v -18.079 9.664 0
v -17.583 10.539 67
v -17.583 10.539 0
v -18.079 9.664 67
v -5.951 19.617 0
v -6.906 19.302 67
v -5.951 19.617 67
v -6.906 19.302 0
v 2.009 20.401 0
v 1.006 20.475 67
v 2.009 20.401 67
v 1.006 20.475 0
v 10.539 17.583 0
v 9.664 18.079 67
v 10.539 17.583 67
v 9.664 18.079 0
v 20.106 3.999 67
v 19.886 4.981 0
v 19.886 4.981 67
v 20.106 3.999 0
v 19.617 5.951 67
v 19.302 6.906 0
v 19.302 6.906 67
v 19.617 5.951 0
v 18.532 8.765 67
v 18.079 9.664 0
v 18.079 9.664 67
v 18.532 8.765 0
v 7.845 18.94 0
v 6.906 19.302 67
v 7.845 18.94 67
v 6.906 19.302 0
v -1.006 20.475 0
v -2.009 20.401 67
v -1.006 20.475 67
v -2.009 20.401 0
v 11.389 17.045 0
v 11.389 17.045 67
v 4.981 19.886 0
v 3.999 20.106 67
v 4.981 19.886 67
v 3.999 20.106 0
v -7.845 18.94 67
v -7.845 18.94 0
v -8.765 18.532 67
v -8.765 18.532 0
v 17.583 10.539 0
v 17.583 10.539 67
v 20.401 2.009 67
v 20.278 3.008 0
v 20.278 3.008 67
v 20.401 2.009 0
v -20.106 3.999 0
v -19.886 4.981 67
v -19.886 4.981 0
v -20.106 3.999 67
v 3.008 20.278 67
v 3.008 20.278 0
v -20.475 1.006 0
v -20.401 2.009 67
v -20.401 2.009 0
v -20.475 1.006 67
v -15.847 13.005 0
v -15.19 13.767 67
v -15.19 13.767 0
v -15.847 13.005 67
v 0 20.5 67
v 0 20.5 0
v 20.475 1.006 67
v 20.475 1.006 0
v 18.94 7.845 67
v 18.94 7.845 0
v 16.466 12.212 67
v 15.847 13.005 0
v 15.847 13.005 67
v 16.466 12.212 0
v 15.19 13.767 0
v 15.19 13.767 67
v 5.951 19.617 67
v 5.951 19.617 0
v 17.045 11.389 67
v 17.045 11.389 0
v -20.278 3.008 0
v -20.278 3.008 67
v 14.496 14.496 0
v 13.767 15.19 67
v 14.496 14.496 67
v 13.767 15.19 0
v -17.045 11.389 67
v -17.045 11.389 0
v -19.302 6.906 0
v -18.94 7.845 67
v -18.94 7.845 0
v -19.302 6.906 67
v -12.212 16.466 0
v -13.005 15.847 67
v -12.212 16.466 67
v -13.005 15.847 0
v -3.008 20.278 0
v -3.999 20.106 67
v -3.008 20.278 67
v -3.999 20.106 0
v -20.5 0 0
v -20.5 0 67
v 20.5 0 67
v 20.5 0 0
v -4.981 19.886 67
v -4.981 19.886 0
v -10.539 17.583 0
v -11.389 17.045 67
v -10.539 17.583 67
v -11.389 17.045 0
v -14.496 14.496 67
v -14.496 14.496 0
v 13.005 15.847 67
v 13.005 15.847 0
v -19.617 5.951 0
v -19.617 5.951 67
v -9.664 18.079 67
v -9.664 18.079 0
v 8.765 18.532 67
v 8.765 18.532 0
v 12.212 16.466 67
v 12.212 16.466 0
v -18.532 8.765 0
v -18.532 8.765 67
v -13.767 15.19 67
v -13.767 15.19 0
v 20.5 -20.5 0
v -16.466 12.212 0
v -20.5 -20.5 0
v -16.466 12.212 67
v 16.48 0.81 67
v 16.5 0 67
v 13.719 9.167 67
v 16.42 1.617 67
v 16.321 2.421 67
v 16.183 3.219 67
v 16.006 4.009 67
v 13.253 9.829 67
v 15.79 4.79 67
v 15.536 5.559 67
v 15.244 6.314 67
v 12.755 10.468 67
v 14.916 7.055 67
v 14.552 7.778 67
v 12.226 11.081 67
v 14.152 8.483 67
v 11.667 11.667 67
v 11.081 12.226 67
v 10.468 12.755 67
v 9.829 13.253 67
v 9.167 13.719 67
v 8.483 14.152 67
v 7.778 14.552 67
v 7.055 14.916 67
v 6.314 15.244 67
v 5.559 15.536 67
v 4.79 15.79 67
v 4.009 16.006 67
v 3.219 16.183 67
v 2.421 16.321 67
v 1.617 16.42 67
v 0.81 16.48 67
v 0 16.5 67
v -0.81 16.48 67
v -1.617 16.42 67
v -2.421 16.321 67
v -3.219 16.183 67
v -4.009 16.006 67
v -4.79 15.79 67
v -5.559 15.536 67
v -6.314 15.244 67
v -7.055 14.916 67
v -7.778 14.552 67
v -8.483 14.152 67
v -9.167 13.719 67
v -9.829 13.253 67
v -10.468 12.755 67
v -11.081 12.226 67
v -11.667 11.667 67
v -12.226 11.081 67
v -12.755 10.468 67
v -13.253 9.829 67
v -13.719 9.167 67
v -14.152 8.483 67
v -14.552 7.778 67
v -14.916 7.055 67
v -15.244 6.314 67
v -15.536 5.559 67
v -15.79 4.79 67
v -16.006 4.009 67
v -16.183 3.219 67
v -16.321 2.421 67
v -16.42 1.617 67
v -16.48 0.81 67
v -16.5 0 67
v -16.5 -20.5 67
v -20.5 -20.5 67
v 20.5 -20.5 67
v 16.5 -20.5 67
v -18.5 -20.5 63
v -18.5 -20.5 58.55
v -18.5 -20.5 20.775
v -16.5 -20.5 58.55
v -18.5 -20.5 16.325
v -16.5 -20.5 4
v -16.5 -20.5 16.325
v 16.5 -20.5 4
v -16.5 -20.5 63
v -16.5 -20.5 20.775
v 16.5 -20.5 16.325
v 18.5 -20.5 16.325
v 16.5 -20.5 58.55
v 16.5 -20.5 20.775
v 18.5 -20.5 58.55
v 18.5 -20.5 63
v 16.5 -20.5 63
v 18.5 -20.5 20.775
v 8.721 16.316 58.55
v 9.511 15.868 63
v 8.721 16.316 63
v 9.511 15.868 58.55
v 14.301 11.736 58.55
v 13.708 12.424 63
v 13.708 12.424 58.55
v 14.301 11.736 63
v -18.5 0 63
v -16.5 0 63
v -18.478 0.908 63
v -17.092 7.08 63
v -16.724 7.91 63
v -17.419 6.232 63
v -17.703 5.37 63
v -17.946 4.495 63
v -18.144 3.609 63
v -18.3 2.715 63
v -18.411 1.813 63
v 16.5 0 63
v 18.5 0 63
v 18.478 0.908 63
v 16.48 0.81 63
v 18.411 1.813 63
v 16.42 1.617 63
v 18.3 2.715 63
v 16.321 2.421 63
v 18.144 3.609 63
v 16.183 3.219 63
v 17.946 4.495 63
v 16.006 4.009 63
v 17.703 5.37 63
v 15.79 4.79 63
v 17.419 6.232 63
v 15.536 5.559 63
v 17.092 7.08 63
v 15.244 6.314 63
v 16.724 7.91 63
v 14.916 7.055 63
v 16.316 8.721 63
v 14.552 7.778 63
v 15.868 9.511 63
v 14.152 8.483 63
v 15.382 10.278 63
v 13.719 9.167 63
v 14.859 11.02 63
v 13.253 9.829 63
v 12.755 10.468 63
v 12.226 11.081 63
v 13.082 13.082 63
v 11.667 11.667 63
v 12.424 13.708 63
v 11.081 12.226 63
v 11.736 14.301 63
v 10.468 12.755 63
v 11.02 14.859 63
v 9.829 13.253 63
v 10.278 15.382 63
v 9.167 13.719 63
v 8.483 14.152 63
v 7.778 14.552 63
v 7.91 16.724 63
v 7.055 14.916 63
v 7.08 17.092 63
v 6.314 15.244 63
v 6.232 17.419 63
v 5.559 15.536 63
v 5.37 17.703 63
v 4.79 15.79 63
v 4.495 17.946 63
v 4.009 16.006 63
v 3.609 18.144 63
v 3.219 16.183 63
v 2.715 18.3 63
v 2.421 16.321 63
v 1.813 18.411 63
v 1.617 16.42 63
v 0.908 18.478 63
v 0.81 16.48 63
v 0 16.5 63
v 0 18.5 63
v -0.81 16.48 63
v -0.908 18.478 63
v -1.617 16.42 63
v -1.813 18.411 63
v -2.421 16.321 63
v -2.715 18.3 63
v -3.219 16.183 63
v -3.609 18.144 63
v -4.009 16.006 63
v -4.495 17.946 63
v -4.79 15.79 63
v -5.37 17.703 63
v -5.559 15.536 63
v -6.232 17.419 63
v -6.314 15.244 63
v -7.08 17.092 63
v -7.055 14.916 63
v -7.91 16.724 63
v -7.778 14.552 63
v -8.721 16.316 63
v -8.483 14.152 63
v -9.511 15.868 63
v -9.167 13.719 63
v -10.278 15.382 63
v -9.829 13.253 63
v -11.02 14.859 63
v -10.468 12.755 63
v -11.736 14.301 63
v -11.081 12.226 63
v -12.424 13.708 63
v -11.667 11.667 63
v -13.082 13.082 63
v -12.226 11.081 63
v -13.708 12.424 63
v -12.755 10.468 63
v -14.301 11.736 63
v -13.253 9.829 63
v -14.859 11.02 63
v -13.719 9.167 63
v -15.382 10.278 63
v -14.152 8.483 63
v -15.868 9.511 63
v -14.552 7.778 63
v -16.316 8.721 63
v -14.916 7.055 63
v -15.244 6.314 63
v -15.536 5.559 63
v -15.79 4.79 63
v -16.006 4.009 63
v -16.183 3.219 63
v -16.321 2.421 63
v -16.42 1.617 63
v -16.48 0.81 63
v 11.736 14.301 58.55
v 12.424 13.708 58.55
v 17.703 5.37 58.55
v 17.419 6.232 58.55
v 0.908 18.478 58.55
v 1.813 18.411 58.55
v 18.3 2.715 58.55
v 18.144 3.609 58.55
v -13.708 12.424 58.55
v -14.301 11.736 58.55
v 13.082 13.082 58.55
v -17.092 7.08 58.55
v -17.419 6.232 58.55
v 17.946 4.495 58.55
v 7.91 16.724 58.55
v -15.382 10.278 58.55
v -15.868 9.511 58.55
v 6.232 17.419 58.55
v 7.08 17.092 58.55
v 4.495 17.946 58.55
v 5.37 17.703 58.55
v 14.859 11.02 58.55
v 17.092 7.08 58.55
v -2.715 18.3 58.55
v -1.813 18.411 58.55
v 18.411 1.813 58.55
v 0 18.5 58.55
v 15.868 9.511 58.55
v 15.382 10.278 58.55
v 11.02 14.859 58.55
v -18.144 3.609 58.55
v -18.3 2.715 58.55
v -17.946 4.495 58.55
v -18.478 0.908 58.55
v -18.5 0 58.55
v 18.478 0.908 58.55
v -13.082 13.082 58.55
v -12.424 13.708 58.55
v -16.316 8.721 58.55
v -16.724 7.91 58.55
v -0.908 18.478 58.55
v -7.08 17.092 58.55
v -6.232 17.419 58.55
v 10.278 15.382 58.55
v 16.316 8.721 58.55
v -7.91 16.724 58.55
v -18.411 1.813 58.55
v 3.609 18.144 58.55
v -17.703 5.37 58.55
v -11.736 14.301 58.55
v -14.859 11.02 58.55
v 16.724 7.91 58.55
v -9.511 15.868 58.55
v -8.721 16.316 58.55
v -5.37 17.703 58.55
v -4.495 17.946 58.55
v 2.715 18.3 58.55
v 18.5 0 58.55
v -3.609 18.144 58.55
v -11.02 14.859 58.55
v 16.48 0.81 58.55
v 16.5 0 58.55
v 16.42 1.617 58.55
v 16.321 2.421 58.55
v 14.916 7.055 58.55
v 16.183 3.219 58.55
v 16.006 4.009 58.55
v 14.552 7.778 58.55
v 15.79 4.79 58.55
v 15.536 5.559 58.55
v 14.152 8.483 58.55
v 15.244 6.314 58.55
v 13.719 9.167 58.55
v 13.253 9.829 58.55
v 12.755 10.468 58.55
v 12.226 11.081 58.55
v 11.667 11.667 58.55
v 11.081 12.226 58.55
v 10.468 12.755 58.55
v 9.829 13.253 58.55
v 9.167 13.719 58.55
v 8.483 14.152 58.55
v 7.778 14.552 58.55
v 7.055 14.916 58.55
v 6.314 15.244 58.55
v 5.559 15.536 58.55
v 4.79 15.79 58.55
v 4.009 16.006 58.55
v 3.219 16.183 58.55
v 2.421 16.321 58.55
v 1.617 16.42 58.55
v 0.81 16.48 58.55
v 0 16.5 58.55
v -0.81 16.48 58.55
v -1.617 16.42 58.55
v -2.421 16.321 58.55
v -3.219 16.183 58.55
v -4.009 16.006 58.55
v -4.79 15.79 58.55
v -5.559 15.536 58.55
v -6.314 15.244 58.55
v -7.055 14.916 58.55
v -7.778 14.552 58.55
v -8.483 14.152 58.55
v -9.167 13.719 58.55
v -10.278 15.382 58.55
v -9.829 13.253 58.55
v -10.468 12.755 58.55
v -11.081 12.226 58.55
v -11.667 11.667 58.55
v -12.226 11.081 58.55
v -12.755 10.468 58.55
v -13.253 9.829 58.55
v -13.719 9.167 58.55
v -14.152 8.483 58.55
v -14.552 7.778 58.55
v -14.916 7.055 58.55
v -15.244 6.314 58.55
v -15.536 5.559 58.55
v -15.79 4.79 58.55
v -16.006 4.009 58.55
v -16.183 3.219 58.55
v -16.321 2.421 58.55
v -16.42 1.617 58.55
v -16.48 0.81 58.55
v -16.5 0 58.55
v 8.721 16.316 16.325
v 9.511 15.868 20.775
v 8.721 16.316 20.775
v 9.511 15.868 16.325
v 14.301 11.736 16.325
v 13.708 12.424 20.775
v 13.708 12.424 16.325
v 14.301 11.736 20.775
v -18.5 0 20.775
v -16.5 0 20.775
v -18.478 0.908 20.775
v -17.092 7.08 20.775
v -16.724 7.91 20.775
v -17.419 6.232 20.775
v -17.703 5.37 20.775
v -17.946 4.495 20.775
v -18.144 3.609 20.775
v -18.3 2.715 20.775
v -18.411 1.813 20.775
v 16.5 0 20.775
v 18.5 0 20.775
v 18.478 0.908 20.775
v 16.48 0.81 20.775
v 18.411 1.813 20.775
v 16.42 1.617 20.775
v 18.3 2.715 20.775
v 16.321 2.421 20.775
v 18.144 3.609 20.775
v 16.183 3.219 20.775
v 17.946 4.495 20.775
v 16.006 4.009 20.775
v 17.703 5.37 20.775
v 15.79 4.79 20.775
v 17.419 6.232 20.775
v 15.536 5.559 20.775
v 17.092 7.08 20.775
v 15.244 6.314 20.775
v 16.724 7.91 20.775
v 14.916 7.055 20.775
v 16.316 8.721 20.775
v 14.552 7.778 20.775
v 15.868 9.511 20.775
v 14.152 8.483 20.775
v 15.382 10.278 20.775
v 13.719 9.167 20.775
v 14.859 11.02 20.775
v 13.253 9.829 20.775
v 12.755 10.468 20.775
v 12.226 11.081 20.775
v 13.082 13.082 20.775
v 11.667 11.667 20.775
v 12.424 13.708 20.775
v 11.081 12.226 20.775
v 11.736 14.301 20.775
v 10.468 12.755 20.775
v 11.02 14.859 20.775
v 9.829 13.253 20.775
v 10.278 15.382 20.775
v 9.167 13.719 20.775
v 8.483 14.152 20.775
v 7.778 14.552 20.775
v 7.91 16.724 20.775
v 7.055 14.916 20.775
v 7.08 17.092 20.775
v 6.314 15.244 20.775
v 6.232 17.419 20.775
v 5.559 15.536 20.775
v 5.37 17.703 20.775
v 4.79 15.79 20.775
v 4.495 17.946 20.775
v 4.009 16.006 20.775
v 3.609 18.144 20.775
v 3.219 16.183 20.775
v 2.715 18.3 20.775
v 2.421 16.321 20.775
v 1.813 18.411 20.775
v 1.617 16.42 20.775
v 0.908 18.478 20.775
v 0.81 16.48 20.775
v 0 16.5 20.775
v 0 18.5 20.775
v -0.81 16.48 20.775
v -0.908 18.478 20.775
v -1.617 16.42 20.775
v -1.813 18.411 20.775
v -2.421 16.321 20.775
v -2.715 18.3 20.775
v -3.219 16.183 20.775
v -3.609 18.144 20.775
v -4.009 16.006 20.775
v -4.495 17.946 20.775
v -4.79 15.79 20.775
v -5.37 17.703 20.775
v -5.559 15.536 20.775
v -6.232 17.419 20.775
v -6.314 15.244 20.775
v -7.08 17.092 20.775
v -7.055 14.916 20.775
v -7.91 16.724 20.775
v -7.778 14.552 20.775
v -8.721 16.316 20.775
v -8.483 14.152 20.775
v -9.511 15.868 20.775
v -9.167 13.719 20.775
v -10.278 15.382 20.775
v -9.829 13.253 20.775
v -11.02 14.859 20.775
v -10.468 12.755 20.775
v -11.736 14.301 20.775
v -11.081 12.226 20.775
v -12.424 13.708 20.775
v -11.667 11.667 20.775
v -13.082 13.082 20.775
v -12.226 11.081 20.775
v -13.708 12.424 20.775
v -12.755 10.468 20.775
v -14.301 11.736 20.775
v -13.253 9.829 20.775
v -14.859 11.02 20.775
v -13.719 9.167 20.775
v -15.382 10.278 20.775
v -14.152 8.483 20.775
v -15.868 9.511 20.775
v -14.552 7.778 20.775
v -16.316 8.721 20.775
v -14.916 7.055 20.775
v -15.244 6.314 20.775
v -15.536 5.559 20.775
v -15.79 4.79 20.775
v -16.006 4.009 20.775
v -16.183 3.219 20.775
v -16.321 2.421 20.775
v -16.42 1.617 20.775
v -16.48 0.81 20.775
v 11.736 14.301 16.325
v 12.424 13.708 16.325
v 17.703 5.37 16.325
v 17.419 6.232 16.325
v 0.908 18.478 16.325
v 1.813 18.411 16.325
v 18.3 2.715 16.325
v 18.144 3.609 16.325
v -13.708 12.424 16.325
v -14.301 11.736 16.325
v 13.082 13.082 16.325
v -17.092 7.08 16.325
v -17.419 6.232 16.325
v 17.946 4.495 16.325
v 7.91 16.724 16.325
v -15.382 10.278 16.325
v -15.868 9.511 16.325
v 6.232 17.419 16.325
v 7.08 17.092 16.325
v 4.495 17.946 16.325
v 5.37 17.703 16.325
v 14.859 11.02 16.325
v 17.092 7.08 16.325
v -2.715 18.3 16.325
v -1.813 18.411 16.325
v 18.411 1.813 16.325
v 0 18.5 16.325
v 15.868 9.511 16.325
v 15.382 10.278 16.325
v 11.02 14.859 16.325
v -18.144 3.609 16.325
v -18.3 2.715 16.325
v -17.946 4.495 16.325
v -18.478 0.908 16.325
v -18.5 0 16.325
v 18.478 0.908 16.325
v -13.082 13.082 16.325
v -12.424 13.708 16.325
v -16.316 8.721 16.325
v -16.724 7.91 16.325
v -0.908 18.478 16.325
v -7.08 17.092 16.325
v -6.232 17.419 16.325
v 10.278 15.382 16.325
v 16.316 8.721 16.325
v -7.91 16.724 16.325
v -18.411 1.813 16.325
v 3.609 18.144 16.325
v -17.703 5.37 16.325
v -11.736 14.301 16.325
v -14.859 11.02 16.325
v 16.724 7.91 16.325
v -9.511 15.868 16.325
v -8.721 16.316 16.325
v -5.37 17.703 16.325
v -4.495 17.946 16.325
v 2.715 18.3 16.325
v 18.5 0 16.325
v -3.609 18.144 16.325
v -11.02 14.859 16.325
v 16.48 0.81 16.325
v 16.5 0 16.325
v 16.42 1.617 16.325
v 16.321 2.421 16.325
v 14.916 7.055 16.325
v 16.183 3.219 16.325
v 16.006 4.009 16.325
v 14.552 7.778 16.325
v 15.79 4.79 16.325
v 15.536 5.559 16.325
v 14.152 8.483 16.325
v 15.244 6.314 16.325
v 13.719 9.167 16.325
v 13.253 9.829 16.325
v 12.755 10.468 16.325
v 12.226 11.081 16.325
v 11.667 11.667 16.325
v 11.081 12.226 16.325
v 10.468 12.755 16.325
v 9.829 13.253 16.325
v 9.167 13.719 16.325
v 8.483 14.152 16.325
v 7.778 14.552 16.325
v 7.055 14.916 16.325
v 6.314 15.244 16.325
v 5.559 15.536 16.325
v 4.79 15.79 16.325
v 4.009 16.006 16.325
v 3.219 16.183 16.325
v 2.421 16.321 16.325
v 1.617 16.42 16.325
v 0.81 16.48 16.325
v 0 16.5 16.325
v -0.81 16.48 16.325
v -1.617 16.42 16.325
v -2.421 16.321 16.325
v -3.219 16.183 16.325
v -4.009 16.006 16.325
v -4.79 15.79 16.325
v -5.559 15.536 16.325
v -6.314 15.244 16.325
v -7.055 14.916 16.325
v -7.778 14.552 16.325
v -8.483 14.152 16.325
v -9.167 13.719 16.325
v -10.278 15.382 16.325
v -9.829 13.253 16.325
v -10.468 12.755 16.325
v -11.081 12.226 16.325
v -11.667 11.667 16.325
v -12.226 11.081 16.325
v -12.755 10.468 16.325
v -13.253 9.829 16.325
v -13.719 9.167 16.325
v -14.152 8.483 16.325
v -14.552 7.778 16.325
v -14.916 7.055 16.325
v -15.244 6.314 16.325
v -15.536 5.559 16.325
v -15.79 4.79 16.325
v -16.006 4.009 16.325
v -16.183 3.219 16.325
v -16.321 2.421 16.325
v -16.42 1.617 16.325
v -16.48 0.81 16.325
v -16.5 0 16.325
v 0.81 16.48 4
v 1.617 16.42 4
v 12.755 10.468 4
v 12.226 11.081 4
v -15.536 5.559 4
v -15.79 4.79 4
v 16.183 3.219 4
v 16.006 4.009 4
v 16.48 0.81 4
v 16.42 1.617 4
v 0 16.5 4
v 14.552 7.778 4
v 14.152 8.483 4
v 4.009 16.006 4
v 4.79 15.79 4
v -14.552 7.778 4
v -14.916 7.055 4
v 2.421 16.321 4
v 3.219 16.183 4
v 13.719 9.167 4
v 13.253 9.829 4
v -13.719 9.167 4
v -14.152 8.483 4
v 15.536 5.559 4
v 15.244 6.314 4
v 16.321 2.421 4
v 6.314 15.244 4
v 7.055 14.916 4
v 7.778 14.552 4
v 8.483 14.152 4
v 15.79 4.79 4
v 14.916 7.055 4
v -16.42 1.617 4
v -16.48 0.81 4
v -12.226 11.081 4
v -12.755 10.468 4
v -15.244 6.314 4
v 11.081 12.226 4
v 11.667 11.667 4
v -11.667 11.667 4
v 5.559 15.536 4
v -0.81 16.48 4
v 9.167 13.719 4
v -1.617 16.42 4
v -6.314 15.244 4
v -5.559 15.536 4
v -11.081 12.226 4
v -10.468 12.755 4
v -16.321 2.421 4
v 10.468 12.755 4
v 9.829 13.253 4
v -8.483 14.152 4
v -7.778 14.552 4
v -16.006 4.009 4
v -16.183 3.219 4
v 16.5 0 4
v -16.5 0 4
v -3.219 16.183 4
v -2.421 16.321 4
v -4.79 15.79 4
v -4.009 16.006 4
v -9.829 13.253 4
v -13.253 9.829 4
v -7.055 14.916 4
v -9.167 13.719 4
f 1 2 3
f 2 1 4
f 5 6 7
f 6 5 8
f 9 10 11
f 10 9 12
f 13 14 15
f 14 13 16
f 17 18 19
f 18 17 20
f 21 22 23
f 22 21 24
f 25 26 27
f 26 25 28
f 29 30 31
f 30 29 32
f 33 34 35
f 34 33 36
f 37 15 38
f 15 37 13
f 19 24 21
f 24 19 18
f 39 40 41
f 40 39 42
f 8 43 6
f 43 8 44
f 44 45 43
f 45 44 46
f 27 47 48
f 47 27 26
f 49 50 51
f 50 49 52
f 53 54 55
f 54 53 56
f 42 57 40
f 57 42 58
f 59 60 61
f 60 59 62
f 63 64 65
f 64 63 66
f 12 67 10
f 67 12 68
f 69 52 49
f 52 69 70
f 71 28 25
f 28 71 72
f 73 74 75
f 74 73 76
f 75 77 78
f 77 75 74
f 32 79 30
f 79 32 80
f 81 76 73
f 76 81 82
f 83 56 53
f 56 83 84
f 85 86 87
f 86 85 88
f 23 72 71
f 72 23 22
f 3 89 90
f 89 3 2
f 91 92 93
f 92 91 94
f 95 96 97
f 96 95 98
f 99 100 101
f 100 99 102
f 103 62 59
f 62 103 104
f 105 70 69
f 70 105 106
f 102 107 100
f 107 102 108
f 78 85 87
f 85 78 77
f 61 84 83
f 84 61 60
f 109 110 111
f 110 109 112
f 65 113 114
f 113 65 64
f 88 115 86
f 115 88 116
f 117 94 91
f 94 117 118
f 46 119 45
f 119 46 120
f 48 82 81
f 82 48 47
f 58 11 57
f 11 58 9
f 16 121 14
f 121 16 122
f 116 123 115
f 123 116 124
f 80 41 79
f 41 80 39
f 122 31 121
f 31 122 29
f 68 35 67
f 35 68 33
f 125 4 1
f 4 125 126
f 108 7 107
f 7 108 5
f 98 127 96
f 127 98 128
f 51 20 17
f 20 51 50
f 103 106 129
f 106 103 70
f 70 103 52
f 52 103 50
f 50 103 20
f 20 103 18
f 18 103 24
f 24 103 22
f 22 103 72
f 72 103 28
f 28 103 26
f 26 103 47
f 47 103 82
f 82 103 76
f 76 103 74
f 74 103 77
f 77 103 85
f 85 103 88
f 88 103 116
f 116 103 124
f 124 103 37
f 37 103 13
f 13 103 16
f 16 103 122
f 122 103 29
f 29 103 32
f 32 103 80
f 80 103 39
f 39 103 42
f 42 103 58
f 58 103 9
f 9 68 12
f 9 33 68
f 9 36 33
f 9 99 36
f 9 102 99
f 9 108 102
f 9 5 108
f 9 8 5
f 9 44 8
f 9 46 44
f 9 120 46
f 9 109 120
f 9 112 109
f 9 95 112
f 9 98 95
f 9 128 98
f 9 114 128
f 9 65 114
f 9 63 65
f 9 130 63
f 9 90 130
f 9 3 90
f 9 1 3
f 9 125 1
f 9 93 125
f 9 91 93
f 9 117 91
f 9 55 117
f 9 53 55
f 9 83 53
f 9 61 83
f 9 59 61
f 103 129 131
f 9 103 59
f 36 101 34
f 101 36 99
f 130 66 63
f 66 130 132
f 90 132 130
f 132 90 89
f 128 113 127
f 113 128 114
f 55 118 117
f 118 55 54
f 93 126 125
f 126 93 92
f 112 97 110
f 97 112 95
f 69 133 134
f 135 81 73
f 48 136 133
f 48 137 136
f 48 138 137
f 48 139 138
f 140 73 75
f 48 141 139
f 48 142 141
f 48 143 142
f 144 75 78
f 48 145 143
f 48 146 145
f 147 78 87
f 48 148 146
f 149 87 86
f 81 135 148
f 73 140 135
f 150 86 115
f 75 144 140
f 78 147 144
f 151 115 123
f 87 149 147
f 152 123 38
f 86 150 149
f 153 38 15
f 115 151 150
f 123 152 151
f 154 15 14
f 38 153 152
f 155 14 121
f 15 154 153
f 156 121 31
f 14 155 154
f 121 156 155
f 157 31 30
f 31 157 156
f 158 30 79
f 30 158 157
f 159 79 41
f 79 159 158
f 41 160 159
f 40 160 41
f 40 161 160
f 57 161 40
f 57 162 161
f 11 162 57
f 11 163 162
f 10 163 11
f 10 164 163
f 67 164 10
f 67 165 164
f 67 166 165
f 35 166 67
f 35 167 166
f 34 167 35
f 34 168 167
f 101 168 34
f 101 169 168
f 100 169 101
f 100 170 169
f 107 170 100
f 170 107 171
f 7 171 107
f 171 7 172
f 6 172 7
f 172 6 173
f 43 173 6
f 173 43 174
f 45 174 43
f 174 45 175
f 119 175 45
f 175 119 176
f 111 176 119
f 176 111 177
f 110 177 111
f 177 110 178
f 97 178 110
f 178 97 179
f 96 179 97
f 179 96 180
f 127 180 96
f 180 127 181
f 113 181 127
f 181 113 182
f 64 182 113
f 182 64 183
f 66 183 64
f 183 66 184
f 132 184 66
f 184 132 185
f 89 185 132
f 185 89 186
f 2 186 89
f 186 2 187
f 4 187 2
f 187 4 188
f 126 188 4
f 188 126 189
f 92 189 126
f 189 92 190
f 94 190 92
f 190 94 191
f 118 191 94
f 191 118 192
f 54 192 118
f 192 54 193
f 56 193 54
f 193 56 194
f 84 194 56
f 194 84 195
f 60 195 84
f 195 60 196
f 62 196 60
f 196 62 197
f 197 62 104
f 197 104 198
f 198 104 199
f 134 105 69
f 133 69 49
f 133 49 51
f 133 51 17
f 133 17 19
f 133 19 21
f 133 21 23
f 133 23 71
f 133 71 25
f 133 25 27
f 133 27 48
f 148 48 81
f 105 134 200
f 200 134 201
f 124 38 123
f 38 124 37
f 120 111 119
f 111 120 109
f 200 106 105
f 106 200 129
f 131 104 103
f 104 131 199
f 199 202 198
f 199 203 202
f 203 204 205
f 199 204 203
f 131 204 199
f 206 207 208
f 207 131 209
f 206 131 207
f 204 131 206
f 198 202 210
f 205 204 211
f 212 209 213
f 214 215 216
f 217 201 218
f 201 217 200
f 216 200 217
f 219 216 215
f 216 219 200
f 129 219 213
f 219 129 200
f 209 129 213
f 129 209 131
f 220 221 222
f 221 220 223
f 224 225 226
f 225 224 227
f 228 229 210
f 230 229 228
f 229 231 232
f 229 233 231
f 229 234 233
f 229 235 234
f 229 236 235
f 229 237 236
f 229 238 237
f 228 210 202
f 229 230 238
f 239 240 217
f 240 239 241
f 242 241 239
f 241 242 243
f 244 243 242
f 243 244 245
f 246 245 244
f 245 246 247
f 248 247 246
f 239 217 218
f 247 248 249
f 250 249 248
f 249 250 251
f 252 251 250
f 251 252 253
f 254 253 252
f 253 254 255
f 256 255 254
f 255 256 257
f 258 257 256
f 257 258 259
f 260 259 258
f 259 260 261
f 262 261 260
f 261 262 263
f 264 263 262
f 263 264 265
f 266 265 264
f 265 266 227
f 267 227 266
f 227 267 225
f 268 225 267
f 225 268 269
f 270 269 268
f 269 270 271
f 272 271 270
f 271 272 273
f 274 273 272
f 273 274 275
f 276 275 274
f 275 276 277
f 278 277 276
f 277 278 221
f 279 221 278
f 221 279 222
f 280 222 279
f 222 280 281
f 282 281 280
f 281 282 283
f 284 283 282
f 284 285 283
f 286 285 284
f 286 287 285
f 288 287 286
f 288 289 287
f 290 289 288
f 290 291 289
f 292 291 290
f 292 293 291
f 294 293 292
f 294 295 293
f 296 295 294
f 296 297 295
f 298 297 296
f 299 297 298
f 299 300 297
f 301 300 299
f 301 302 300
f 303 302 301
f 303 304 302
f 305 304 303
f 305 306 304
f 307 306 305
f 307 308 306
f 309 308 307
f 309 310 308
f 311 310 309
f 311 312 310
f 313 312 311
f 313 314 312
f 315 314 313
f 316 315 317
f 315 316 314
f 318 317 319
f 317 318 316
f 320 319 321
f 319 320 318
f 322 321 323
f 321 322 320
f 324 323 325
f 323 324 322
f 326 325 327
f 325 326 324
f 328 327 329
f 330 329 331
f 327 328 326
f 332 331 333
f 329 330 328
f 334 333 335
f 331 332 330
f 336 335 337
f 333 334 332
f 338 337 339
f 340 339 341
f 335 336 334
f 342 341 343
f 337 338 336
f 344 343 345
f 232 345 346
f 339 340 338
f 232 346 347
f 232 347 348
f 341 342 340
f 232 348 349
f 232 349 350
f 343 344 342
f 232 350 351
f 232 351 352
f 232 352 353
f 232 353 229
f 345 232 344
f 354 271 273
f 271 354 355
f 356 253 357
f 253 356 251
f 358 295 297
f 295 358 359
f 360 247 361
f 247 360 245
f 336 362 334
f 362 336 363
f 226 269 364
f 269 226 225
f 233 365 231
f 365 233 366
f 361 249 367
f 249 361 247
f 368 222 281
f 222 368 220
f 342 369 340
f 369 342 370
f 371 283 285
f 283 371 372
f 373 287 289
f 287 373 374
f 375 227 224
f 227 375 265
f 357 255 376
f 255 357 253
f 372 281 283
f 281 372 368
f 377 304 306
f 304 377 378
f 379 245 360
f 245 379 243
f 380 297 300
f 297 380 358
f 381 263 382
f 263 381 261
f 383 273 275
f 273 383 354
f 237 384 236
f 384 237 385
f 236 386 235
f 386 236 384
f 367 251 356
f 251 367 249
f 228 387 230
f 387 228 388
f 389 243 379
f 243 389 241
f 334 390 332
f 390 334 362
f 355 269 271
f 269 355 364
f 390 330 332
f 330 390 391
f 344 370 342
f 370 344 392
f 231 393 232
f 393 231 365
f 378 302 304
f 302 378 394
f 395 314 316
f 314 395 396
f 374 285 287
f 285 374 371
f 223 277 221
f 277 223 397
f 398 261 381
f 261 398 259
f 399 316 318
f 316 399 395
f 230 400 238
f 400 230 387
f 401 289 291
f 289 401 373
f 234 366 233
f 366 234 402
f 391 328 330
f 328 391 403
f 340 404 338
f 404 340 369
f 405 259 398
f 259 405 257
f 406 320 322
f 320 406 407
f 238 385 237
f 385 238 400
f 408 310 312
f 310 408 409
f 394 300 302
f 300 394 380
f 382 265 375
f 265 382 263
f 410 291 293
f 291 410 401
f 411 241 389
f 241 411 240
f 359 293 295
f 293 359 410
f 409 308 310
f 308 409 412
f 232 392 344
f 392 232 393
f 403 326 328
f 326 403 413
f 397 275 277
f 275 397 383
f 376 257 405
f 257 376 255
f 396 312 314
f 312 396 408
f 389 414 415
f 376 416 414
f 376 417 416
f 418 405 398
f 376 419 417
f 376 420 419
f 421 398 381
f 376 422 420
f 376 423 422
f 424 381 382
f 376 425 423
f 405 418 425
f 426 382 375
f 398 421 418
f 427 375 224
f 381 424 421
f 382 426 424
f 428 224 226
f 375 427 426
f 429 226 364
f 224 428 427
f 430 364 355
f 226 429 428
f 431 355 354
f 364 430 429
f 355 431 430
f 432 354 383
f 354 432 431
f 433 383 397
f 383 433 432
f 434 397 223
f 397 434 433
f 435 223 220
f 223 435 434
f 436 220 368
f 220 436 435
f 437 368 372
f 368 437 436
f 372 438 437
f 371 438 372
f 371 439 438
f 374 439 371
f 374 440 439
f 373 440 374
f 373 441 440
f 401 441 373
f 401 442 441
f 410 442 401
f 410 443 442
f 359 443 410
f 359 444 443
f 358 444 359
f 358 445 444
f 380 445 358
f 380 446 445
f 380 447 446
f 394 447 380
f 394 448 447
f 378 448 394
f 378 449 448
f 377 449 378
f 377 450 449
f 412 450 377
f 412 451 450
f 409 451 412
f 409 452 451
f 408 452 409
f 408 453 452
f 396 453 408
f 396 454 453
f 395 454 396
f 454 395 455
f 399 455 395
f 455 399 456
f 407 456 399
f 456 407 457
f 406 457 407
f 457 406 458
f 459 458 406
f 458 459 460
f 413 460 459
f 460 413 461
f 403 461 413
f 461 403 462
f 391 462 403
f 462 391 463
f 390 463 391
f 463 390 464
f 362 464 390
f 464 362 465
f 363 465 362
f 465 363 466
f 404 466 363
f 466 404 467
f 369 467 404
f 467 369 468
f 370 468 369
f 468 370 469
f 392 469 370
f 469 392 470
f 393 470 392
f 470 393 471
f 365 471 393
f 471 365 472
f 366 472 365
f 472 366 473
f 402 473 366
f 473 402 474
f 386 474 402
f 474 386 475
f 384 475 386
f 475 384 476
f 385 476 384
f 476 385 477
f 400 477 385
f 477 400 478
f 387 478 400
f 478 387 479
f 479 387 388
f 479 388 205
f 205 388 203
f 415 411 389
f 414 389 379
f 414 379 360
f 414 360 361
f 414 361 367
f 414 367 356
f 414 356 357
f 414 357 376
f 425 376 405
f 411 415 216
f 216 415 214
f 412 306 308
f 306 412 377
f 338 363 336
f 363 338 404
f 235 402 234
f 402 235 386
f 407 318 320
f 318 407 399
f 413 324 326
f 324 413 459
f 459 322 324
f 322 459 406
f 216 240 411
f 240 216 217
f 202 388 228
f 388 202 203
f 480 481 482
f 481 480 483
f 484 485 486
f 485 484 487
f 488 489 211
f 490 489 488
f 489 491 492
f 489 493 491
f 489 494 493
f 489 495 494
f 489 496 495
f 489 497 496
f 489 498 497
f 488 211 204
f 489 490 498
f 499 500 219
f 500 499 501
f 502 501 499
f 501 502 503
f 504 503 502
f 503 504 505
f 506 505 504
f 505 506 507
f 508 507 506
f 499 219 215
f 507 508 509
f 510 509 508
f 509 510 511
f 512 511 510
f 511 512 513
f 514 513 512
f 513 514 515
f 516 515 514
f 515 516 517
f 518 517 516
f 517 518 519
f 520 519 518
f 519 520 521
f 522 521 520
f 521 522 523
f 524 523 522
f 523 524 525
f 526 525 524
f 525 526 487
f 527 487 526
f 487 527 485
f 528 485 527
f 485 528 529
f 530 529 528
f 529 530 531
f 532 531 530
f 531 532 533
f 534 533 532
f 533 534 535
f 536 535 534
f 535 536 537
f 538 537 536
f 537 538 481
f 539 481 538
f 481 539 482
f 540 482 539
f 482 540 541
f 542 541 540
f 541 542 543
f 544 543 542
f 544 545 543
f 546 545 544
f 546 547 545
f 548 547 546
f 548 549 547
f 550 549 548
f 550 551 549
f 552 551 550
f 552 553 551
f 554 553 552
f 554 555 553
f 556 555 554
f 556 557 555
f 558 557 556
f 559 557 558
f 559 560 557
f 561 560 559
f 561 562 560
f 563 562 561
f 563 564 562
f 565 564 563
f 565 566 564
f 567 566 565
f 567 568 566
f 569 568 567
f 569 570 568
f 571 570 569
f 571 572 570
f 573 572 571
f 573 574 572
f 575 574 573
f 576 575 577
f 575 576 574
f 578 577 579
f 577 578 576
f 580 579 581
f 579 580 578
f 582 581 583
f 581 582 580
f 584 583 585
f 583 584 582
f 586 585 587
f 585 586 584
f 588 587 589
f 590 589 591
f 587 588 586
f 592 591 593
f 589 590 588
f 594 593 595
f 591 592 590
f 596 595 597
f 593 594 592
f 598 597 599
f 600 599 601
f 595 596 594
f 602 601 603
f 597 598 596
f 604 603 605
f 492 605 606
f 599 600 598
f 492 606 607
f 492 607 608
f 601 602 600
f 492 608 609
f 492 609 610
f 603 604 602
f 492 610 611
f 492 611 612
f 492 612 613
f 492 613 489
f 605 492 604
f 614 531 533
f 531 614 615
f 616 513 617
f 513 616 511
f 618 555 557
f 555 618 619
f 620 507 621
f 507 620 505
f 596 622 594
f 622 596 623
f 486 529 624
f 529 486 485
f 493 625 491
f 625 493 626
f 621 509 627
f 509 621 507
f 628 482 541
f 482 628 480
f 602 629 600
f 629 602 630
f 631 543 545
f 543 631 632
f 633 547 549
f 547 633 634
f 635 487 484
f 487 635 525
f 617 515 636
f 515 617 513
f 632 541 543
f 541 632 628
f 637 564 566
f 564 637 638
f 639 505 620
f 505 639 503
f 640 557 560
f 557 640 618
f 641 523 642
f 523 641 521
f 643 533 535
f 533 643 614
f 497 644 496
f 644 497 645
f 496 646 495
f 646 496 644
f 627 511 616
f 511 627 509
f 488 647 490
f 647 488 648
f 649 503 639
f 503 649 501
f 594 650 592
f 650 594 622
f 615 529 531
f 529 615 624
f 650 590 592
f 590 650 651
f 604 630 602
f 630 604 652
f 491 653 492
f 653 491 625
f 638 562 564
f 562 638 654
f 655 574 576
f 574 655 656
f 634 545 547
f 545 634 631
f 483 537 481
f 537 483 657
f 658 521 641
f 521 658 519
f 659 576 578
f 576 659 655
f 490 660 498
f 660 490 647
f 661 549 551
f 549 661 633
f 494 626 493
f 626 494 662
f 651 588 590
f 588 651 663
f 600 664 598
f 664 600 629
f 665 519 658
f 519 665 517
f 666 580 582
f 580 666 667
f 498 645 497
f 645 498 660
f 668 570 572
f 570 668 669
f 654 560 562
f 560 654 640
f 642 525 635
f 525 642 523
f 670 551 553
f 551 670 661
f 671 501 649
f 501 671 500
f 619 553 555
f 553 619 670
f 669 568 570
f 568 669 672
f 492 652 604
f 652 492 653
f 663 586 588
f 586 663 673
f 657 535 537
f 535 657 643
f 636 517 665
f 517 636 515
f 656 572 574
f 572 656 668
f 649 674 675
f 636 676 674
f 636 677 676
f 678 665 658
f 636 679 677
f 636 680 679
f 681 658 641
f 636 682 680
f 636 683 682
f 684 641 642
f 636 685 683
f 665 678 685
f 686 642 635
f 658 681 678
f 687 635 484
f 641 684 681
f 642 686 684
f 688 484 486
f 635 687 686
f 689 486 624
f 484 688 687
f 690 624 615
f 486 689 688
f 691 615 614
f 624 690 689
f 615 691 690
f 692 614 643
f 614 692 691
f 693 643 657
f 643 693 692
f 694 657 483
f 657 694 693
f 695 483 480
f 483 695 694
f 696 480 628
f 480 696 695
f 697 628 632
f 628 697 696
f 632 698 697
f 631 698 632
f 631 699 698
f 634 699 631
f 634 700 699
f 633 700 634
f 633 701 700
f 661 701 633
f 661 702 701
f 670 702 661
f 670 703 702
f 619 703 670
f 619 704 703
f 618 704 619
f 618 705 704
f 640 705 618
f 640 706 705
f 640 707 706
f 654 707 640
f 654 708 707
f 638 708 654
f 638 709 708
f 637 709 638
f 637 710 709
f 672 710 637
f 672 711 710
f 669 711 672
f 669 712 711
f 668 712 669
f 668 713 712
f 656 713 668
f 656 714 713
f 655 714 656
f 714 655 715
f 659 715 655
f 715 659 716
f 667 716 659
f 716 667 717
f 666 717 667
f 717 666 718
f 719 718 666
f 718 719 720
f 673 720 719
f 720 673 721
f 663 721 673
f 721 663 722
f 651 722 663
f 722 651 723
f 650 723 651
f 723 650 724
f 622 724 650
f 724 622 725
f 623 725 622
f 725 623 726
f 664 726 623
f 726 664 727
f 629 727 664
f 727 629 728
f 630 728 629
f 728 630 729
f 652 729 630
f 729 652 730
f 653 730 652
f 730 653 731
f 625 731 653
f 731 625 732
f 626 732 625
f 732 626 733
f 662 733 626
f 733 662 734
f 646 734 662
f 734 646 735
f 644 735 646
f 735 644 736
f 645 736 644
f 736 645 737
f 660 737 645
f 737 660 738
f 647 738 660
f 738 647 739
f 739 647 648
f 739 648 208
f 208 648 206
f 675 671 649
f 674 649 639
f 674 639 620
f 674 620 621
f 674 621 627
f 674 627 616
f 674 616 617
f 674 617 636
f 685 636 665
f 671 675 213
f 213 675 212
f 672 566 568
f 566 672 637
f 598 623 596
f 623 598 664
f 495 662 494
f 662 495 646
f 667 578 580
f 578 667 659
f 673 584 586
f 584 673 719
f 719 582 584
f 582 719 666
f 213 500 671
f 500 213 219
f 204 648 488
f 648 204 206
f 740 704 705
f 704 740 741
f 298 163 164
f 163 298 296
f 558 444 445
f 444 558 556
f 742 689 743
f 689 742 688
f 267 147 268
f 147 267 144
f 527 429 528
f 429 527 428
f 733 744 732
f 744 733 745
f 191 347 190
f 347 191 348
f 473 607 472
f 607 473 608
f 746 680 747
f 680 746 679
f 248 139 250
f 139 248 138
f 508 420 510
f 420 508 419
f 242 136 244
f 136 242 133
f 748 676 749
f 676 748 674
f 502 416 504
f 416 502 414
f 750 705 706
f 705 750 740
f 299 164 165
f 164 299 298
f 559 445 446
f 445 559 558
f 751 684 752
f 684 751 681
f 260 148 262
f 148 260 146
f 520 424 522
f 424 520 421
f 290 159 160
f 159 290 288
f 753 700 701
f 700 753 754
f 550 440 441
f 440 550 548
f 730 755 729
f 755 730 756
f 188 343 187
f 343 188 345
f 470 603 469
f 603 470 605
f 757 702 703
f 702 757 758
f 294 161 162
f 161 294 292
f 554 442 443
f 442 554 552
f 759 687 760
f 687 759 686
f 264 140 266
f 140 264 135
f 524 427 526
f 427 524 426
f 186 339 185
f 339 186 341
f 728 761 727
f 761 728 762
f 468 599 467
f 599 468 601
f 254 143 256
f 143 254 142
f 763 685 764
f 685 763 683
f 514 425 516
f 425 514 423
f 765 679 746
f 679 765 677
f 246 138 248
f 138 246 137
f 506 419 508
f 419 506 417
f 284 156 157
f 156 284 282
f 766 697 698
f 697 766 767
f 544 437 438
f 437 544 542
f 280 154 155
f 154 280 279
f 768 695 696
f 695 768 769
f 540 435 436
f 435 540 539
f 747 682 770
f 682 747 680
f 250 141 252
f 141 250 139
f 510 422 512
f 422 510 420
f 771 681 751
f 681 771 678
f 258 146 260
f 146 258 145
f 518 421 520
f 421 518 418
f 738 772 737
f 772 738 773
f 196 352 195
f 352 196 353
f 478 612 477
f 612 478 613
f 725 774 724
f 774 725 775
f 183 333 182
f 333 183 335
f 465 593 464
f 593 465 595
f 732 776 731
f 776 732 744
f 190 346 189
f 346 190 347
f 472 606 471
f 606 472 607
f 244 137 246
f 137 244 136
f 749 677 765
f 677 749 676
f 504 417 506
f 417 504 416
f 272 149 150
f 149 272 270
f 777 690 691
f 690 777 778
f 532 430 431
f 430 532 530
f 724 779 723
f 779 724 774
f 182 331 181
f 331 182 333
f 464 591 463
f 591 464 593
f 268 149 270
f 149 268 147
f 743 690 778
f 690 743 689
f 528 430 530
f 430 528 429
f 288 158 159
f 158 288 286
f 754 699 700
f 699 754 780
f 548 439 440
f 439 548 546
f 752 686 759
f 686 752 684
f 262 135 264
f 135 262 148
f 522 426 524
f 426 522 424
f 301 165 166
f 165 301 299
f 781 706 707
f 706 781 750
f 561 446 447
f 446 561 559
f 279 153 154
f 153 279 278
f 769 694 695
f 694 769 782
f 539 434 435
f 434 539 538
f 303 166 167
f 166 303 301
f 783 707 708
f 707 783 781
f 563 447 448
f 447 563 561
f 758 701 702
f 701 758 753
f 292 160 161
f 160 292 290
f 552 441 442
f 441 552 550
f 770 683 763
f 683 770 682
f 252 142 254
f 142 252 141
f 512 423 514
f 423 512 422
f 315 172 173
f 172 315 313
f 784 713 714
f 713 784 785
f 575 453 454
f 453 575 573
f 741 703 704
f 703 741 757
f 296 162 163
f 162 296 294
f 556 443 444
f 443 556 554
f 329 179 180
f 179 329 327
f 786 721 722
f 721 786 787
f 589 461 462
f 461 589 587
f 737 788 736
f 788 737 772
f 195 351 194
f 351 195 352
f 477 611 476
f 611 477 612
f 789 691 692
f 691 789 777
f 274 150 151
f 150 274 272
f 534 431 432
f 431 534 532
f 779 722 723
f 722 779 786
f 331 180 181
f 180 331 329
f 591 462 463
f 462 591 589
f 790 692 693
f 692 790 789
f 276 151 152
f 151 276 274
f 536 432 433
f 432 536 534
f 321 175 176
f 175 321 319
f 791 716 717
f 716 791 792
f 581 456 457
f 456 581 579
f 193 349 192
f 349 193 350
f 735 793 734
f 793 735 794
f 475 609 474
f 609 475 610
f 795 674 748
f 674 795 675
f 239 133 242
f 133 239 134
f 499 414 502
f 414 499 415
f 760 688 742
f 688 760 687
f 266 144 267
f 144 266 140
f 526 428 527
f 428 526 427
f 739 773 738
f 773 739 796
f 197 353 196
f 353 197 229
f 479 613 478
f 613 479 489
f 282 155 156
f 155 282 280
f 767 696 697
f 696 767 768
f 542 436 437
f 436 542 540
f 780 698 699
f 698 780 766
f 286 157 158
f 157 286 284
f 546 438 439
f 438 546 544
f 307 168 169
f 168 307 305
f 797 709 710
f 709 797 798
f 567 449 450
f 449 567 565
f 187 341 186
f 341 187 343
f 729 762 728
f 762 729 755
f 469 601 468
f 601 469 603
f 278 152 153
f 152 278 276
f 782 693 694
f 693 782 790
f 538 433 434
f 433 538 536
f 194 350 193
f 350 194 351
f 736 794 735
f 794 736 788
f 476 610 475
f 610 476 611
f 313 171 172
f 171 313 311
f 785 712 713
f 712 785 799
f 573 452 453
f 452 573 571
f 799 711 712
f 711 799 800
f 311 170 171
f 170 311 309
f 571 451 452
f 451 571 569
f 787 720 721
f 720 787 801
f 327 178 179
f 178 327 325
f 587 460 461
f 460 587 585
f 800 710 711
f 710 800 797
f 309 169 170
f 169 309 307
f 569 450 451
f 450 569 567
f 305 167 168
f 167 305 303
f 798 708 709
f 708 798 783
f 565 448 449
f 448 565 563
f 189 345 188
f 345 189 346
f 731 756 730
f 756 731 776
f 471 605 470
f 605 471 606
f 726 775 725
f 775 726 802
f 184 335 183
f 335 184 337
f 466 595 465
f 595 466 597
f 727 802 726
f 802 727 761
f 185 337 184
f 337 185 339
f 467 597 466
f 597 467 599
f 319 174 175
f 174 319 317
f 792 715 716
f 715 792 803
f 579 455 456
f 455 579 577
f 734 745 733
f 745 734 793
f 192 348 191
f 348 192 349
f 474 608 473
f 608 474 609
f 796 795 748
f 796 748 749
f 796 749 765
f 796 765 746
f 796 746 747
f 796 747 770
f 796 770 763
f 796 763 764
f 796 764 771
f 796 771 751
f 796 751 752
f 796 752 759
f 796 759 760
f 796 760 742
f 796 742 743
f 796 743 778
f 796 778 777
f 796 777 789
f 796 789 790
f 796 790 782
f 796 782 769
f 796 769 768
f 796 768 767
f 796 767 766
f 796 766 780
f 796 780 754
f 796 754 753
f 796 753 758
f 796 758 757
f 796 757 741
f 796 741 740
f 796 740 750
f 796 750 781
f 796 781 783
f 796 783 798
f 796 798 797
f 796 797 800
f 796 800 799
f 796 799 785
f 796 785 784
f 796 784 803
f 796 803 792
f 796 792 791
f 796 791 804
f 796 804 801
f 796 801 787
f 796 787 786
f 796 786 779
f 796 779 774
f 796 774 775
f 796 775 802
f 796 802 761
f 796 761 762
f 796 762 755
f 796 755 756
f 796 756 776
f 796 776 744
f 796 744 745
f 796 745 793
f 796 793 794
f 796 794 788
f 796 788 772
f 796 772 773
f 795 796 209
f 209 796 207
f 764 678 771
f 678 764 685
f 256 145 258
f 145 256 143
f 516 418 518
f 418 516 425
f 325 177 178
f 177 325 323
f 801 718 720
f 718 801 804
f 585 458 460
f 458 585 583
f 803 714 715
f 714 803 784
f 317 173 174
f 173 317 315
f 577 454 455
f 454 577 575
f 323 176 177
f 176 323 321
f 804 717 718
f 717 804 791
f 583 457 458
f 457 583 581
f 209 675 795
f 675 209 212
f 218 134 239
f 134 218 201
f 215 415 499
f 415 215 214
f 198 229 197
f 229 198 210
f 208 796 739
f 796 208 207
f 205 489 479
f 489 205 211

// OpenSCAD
// Generated by SolidPython 0.4.6 on 2019-12-25 17:35:51


translate(v = [0, 0, 67.0000000000]) {
	rotate(a = [180, 0, 0]) {
		difference() {
			union() {
				cylinder($fn = 128, d = 41.0000000000, h = 67.0000000000);
				translate(v = [-20.5000000000, 0, 0]) {
					cube(size = [41.0000000000, 20.5000000000, 67.0000000000]);
				}
			}
			cylinder($fn = 128, d = 33.0000000000, h = 63.0000000000);
			translate(v = [-16.5000000000, 0, 0]) {
				cube(size = [33.0000000000, 39.0000000000, 63.0000000000]);
			}
			translate(v = [0, 0, 4.0000000000]) {
				union() {
					cylinder($fn = 128, d = 37.0000000000, h = 4.4500000000);
					translate(v = [-18.5000000000, 0, 0]) {
						cube(size = [37.0000000000, 39.0000000000, 4.4500000000]);
					}
				}
			}
			translate(v = [0, 0, 46.2250000000]) {
				union() {
					cylinder($fn = 128, d = 37.0000000000, h = 4.4500000000);
					translate(v = [-18.5000000000, 0, 0]) {
						cube(size = [37.0000000000, 39.0000000000, 4.4500000000]);
					}
				}
			}
		}
	}
}
/***********************************************
*********      SolidPython code:      **********
************************************************
 
import solid as s
import solid.utils as u


def render(suffix, final):
    suffix += ".scad"
    s.scad_render_to_file(final, __file__.replace(".py", suffix))


wall = 4.0
wall2 = wall * 2.0
head_height = 13.0
sol_dia = 33.0
collar_dia = 20.0
sol_height = 38.0
slot_depth = 2.0
nt = 0.45  # nestle tolerance
nth = nt / 2.0
hammer_width = 8.0
hammer_slot_width = hammer_width + nt + nt
hammer_slot_height = hammer_slot_width
hammer_height = 15.0
hammer_length = 45.0
total_height = head_height + sol_height + wall2 + wall2
total_width = sol_dia + wall2
lid_width = total_width - wall2 - nt
lid_base_width = total_width - wall2 + slot_depth + slot_depth - nt
slot_width = lid_base_width + nt
back_height = total_height - wall - nt

# body shell
body = s.cylinder(d=total_width, h=total_height, segments=128)
body += u.left(total_width / 2.0)(
    s.cube(size=[total_width, total_width / 2.0, total_height])
)

# body cavity
body -= s.cylinder(d=total_width - wall2, h=total_height - wall, segments=128)
body -= u.left((total_width / 2.0) - wall)(
    s.cube(size=[total_width - wall2, total_width - wall / 2.0, total_height - wall])
)

slot = s.cylinder(d=slot_width, h=wall + nt, segments=128)
slot += u.left(slot_width / 2.0)(
    s.cube(size=[slot_width, total_width - wall / 2.0, wall + nt])
)
# body base slot
body -= u.up(wall)(slot)

# body top slot
body -= u.up(total_height - wall2 - head_height + nth)(slot)

# lid back
lid = u.left(lid_width / 2.0)(
    u.forward((total_width / 2.0) - wall)(s.cube(size=[lid_width, wall, back_height]))
)

base = s.cylinder(d=lid_base_width, h=wall, segments=128)
base += u.left(lid_base_width / 2.0)(
    s.cube(size=[lid_base_width, total_width / 2.0, wall])
)

# lid base
lid += u.up(wall + nth)(base)

# lid top
top_lid = base - s.cylinder(d=collar_dia, h=wall, segments=128)
top_lid -= u.left(collar_dia / 2.0)(
    u.back(collar_dia)(s.cube(size=[collar_dia, collar_dia, wall]))
)
lid += u.up(total_height - wall2 - head_height + nth)(top_lid)

# lid hammer slot
lid -= u.left(hammer_slot_width / 2.0)(
    u.forward((total_width / 2.0) - wall)(
        u.up(back_height - hammer_slot_height)(
            s.cube(size=[hammer_slot_width, wall, hammer_slot_height])
        )
    )
)

hammer = u.left(hammer_width / 2.0)(
    u.up(back_height - hammer_slot_height)(
        u.back(hammer_width / 2.0)(
            s.cube(size=[hammer_width, hammer_length, wall])
            + u.forward(hammer_length - wall)(
                s.cube(size=[hammer_width, wall, hammer_height])
            )
        )
    )
)

blue_lid = s.color(u.Blue)(lid)
red_hammer = s.color(u.Red)(hammer)
render("", body + blue_lid + red_hammer)
render(
    "-exploded",
    body
    + u.forward(total_width)(blue_lid)
    + u.forward(total_width + total_width)(red_hammer),
)
render(
    '-print-body',
    u.up(total_height)(s.rotate(a=[180,0,0])(body))
)
render(
    '-print-lid',
    u.up(total_width / 2.0)(s.rotate(a=[-90,0,0])(lid))
)
render(
    '-print-hammer',
    u.down(back_height - hammer_slot_height)(hammer)
)
 
 
************************************************/
